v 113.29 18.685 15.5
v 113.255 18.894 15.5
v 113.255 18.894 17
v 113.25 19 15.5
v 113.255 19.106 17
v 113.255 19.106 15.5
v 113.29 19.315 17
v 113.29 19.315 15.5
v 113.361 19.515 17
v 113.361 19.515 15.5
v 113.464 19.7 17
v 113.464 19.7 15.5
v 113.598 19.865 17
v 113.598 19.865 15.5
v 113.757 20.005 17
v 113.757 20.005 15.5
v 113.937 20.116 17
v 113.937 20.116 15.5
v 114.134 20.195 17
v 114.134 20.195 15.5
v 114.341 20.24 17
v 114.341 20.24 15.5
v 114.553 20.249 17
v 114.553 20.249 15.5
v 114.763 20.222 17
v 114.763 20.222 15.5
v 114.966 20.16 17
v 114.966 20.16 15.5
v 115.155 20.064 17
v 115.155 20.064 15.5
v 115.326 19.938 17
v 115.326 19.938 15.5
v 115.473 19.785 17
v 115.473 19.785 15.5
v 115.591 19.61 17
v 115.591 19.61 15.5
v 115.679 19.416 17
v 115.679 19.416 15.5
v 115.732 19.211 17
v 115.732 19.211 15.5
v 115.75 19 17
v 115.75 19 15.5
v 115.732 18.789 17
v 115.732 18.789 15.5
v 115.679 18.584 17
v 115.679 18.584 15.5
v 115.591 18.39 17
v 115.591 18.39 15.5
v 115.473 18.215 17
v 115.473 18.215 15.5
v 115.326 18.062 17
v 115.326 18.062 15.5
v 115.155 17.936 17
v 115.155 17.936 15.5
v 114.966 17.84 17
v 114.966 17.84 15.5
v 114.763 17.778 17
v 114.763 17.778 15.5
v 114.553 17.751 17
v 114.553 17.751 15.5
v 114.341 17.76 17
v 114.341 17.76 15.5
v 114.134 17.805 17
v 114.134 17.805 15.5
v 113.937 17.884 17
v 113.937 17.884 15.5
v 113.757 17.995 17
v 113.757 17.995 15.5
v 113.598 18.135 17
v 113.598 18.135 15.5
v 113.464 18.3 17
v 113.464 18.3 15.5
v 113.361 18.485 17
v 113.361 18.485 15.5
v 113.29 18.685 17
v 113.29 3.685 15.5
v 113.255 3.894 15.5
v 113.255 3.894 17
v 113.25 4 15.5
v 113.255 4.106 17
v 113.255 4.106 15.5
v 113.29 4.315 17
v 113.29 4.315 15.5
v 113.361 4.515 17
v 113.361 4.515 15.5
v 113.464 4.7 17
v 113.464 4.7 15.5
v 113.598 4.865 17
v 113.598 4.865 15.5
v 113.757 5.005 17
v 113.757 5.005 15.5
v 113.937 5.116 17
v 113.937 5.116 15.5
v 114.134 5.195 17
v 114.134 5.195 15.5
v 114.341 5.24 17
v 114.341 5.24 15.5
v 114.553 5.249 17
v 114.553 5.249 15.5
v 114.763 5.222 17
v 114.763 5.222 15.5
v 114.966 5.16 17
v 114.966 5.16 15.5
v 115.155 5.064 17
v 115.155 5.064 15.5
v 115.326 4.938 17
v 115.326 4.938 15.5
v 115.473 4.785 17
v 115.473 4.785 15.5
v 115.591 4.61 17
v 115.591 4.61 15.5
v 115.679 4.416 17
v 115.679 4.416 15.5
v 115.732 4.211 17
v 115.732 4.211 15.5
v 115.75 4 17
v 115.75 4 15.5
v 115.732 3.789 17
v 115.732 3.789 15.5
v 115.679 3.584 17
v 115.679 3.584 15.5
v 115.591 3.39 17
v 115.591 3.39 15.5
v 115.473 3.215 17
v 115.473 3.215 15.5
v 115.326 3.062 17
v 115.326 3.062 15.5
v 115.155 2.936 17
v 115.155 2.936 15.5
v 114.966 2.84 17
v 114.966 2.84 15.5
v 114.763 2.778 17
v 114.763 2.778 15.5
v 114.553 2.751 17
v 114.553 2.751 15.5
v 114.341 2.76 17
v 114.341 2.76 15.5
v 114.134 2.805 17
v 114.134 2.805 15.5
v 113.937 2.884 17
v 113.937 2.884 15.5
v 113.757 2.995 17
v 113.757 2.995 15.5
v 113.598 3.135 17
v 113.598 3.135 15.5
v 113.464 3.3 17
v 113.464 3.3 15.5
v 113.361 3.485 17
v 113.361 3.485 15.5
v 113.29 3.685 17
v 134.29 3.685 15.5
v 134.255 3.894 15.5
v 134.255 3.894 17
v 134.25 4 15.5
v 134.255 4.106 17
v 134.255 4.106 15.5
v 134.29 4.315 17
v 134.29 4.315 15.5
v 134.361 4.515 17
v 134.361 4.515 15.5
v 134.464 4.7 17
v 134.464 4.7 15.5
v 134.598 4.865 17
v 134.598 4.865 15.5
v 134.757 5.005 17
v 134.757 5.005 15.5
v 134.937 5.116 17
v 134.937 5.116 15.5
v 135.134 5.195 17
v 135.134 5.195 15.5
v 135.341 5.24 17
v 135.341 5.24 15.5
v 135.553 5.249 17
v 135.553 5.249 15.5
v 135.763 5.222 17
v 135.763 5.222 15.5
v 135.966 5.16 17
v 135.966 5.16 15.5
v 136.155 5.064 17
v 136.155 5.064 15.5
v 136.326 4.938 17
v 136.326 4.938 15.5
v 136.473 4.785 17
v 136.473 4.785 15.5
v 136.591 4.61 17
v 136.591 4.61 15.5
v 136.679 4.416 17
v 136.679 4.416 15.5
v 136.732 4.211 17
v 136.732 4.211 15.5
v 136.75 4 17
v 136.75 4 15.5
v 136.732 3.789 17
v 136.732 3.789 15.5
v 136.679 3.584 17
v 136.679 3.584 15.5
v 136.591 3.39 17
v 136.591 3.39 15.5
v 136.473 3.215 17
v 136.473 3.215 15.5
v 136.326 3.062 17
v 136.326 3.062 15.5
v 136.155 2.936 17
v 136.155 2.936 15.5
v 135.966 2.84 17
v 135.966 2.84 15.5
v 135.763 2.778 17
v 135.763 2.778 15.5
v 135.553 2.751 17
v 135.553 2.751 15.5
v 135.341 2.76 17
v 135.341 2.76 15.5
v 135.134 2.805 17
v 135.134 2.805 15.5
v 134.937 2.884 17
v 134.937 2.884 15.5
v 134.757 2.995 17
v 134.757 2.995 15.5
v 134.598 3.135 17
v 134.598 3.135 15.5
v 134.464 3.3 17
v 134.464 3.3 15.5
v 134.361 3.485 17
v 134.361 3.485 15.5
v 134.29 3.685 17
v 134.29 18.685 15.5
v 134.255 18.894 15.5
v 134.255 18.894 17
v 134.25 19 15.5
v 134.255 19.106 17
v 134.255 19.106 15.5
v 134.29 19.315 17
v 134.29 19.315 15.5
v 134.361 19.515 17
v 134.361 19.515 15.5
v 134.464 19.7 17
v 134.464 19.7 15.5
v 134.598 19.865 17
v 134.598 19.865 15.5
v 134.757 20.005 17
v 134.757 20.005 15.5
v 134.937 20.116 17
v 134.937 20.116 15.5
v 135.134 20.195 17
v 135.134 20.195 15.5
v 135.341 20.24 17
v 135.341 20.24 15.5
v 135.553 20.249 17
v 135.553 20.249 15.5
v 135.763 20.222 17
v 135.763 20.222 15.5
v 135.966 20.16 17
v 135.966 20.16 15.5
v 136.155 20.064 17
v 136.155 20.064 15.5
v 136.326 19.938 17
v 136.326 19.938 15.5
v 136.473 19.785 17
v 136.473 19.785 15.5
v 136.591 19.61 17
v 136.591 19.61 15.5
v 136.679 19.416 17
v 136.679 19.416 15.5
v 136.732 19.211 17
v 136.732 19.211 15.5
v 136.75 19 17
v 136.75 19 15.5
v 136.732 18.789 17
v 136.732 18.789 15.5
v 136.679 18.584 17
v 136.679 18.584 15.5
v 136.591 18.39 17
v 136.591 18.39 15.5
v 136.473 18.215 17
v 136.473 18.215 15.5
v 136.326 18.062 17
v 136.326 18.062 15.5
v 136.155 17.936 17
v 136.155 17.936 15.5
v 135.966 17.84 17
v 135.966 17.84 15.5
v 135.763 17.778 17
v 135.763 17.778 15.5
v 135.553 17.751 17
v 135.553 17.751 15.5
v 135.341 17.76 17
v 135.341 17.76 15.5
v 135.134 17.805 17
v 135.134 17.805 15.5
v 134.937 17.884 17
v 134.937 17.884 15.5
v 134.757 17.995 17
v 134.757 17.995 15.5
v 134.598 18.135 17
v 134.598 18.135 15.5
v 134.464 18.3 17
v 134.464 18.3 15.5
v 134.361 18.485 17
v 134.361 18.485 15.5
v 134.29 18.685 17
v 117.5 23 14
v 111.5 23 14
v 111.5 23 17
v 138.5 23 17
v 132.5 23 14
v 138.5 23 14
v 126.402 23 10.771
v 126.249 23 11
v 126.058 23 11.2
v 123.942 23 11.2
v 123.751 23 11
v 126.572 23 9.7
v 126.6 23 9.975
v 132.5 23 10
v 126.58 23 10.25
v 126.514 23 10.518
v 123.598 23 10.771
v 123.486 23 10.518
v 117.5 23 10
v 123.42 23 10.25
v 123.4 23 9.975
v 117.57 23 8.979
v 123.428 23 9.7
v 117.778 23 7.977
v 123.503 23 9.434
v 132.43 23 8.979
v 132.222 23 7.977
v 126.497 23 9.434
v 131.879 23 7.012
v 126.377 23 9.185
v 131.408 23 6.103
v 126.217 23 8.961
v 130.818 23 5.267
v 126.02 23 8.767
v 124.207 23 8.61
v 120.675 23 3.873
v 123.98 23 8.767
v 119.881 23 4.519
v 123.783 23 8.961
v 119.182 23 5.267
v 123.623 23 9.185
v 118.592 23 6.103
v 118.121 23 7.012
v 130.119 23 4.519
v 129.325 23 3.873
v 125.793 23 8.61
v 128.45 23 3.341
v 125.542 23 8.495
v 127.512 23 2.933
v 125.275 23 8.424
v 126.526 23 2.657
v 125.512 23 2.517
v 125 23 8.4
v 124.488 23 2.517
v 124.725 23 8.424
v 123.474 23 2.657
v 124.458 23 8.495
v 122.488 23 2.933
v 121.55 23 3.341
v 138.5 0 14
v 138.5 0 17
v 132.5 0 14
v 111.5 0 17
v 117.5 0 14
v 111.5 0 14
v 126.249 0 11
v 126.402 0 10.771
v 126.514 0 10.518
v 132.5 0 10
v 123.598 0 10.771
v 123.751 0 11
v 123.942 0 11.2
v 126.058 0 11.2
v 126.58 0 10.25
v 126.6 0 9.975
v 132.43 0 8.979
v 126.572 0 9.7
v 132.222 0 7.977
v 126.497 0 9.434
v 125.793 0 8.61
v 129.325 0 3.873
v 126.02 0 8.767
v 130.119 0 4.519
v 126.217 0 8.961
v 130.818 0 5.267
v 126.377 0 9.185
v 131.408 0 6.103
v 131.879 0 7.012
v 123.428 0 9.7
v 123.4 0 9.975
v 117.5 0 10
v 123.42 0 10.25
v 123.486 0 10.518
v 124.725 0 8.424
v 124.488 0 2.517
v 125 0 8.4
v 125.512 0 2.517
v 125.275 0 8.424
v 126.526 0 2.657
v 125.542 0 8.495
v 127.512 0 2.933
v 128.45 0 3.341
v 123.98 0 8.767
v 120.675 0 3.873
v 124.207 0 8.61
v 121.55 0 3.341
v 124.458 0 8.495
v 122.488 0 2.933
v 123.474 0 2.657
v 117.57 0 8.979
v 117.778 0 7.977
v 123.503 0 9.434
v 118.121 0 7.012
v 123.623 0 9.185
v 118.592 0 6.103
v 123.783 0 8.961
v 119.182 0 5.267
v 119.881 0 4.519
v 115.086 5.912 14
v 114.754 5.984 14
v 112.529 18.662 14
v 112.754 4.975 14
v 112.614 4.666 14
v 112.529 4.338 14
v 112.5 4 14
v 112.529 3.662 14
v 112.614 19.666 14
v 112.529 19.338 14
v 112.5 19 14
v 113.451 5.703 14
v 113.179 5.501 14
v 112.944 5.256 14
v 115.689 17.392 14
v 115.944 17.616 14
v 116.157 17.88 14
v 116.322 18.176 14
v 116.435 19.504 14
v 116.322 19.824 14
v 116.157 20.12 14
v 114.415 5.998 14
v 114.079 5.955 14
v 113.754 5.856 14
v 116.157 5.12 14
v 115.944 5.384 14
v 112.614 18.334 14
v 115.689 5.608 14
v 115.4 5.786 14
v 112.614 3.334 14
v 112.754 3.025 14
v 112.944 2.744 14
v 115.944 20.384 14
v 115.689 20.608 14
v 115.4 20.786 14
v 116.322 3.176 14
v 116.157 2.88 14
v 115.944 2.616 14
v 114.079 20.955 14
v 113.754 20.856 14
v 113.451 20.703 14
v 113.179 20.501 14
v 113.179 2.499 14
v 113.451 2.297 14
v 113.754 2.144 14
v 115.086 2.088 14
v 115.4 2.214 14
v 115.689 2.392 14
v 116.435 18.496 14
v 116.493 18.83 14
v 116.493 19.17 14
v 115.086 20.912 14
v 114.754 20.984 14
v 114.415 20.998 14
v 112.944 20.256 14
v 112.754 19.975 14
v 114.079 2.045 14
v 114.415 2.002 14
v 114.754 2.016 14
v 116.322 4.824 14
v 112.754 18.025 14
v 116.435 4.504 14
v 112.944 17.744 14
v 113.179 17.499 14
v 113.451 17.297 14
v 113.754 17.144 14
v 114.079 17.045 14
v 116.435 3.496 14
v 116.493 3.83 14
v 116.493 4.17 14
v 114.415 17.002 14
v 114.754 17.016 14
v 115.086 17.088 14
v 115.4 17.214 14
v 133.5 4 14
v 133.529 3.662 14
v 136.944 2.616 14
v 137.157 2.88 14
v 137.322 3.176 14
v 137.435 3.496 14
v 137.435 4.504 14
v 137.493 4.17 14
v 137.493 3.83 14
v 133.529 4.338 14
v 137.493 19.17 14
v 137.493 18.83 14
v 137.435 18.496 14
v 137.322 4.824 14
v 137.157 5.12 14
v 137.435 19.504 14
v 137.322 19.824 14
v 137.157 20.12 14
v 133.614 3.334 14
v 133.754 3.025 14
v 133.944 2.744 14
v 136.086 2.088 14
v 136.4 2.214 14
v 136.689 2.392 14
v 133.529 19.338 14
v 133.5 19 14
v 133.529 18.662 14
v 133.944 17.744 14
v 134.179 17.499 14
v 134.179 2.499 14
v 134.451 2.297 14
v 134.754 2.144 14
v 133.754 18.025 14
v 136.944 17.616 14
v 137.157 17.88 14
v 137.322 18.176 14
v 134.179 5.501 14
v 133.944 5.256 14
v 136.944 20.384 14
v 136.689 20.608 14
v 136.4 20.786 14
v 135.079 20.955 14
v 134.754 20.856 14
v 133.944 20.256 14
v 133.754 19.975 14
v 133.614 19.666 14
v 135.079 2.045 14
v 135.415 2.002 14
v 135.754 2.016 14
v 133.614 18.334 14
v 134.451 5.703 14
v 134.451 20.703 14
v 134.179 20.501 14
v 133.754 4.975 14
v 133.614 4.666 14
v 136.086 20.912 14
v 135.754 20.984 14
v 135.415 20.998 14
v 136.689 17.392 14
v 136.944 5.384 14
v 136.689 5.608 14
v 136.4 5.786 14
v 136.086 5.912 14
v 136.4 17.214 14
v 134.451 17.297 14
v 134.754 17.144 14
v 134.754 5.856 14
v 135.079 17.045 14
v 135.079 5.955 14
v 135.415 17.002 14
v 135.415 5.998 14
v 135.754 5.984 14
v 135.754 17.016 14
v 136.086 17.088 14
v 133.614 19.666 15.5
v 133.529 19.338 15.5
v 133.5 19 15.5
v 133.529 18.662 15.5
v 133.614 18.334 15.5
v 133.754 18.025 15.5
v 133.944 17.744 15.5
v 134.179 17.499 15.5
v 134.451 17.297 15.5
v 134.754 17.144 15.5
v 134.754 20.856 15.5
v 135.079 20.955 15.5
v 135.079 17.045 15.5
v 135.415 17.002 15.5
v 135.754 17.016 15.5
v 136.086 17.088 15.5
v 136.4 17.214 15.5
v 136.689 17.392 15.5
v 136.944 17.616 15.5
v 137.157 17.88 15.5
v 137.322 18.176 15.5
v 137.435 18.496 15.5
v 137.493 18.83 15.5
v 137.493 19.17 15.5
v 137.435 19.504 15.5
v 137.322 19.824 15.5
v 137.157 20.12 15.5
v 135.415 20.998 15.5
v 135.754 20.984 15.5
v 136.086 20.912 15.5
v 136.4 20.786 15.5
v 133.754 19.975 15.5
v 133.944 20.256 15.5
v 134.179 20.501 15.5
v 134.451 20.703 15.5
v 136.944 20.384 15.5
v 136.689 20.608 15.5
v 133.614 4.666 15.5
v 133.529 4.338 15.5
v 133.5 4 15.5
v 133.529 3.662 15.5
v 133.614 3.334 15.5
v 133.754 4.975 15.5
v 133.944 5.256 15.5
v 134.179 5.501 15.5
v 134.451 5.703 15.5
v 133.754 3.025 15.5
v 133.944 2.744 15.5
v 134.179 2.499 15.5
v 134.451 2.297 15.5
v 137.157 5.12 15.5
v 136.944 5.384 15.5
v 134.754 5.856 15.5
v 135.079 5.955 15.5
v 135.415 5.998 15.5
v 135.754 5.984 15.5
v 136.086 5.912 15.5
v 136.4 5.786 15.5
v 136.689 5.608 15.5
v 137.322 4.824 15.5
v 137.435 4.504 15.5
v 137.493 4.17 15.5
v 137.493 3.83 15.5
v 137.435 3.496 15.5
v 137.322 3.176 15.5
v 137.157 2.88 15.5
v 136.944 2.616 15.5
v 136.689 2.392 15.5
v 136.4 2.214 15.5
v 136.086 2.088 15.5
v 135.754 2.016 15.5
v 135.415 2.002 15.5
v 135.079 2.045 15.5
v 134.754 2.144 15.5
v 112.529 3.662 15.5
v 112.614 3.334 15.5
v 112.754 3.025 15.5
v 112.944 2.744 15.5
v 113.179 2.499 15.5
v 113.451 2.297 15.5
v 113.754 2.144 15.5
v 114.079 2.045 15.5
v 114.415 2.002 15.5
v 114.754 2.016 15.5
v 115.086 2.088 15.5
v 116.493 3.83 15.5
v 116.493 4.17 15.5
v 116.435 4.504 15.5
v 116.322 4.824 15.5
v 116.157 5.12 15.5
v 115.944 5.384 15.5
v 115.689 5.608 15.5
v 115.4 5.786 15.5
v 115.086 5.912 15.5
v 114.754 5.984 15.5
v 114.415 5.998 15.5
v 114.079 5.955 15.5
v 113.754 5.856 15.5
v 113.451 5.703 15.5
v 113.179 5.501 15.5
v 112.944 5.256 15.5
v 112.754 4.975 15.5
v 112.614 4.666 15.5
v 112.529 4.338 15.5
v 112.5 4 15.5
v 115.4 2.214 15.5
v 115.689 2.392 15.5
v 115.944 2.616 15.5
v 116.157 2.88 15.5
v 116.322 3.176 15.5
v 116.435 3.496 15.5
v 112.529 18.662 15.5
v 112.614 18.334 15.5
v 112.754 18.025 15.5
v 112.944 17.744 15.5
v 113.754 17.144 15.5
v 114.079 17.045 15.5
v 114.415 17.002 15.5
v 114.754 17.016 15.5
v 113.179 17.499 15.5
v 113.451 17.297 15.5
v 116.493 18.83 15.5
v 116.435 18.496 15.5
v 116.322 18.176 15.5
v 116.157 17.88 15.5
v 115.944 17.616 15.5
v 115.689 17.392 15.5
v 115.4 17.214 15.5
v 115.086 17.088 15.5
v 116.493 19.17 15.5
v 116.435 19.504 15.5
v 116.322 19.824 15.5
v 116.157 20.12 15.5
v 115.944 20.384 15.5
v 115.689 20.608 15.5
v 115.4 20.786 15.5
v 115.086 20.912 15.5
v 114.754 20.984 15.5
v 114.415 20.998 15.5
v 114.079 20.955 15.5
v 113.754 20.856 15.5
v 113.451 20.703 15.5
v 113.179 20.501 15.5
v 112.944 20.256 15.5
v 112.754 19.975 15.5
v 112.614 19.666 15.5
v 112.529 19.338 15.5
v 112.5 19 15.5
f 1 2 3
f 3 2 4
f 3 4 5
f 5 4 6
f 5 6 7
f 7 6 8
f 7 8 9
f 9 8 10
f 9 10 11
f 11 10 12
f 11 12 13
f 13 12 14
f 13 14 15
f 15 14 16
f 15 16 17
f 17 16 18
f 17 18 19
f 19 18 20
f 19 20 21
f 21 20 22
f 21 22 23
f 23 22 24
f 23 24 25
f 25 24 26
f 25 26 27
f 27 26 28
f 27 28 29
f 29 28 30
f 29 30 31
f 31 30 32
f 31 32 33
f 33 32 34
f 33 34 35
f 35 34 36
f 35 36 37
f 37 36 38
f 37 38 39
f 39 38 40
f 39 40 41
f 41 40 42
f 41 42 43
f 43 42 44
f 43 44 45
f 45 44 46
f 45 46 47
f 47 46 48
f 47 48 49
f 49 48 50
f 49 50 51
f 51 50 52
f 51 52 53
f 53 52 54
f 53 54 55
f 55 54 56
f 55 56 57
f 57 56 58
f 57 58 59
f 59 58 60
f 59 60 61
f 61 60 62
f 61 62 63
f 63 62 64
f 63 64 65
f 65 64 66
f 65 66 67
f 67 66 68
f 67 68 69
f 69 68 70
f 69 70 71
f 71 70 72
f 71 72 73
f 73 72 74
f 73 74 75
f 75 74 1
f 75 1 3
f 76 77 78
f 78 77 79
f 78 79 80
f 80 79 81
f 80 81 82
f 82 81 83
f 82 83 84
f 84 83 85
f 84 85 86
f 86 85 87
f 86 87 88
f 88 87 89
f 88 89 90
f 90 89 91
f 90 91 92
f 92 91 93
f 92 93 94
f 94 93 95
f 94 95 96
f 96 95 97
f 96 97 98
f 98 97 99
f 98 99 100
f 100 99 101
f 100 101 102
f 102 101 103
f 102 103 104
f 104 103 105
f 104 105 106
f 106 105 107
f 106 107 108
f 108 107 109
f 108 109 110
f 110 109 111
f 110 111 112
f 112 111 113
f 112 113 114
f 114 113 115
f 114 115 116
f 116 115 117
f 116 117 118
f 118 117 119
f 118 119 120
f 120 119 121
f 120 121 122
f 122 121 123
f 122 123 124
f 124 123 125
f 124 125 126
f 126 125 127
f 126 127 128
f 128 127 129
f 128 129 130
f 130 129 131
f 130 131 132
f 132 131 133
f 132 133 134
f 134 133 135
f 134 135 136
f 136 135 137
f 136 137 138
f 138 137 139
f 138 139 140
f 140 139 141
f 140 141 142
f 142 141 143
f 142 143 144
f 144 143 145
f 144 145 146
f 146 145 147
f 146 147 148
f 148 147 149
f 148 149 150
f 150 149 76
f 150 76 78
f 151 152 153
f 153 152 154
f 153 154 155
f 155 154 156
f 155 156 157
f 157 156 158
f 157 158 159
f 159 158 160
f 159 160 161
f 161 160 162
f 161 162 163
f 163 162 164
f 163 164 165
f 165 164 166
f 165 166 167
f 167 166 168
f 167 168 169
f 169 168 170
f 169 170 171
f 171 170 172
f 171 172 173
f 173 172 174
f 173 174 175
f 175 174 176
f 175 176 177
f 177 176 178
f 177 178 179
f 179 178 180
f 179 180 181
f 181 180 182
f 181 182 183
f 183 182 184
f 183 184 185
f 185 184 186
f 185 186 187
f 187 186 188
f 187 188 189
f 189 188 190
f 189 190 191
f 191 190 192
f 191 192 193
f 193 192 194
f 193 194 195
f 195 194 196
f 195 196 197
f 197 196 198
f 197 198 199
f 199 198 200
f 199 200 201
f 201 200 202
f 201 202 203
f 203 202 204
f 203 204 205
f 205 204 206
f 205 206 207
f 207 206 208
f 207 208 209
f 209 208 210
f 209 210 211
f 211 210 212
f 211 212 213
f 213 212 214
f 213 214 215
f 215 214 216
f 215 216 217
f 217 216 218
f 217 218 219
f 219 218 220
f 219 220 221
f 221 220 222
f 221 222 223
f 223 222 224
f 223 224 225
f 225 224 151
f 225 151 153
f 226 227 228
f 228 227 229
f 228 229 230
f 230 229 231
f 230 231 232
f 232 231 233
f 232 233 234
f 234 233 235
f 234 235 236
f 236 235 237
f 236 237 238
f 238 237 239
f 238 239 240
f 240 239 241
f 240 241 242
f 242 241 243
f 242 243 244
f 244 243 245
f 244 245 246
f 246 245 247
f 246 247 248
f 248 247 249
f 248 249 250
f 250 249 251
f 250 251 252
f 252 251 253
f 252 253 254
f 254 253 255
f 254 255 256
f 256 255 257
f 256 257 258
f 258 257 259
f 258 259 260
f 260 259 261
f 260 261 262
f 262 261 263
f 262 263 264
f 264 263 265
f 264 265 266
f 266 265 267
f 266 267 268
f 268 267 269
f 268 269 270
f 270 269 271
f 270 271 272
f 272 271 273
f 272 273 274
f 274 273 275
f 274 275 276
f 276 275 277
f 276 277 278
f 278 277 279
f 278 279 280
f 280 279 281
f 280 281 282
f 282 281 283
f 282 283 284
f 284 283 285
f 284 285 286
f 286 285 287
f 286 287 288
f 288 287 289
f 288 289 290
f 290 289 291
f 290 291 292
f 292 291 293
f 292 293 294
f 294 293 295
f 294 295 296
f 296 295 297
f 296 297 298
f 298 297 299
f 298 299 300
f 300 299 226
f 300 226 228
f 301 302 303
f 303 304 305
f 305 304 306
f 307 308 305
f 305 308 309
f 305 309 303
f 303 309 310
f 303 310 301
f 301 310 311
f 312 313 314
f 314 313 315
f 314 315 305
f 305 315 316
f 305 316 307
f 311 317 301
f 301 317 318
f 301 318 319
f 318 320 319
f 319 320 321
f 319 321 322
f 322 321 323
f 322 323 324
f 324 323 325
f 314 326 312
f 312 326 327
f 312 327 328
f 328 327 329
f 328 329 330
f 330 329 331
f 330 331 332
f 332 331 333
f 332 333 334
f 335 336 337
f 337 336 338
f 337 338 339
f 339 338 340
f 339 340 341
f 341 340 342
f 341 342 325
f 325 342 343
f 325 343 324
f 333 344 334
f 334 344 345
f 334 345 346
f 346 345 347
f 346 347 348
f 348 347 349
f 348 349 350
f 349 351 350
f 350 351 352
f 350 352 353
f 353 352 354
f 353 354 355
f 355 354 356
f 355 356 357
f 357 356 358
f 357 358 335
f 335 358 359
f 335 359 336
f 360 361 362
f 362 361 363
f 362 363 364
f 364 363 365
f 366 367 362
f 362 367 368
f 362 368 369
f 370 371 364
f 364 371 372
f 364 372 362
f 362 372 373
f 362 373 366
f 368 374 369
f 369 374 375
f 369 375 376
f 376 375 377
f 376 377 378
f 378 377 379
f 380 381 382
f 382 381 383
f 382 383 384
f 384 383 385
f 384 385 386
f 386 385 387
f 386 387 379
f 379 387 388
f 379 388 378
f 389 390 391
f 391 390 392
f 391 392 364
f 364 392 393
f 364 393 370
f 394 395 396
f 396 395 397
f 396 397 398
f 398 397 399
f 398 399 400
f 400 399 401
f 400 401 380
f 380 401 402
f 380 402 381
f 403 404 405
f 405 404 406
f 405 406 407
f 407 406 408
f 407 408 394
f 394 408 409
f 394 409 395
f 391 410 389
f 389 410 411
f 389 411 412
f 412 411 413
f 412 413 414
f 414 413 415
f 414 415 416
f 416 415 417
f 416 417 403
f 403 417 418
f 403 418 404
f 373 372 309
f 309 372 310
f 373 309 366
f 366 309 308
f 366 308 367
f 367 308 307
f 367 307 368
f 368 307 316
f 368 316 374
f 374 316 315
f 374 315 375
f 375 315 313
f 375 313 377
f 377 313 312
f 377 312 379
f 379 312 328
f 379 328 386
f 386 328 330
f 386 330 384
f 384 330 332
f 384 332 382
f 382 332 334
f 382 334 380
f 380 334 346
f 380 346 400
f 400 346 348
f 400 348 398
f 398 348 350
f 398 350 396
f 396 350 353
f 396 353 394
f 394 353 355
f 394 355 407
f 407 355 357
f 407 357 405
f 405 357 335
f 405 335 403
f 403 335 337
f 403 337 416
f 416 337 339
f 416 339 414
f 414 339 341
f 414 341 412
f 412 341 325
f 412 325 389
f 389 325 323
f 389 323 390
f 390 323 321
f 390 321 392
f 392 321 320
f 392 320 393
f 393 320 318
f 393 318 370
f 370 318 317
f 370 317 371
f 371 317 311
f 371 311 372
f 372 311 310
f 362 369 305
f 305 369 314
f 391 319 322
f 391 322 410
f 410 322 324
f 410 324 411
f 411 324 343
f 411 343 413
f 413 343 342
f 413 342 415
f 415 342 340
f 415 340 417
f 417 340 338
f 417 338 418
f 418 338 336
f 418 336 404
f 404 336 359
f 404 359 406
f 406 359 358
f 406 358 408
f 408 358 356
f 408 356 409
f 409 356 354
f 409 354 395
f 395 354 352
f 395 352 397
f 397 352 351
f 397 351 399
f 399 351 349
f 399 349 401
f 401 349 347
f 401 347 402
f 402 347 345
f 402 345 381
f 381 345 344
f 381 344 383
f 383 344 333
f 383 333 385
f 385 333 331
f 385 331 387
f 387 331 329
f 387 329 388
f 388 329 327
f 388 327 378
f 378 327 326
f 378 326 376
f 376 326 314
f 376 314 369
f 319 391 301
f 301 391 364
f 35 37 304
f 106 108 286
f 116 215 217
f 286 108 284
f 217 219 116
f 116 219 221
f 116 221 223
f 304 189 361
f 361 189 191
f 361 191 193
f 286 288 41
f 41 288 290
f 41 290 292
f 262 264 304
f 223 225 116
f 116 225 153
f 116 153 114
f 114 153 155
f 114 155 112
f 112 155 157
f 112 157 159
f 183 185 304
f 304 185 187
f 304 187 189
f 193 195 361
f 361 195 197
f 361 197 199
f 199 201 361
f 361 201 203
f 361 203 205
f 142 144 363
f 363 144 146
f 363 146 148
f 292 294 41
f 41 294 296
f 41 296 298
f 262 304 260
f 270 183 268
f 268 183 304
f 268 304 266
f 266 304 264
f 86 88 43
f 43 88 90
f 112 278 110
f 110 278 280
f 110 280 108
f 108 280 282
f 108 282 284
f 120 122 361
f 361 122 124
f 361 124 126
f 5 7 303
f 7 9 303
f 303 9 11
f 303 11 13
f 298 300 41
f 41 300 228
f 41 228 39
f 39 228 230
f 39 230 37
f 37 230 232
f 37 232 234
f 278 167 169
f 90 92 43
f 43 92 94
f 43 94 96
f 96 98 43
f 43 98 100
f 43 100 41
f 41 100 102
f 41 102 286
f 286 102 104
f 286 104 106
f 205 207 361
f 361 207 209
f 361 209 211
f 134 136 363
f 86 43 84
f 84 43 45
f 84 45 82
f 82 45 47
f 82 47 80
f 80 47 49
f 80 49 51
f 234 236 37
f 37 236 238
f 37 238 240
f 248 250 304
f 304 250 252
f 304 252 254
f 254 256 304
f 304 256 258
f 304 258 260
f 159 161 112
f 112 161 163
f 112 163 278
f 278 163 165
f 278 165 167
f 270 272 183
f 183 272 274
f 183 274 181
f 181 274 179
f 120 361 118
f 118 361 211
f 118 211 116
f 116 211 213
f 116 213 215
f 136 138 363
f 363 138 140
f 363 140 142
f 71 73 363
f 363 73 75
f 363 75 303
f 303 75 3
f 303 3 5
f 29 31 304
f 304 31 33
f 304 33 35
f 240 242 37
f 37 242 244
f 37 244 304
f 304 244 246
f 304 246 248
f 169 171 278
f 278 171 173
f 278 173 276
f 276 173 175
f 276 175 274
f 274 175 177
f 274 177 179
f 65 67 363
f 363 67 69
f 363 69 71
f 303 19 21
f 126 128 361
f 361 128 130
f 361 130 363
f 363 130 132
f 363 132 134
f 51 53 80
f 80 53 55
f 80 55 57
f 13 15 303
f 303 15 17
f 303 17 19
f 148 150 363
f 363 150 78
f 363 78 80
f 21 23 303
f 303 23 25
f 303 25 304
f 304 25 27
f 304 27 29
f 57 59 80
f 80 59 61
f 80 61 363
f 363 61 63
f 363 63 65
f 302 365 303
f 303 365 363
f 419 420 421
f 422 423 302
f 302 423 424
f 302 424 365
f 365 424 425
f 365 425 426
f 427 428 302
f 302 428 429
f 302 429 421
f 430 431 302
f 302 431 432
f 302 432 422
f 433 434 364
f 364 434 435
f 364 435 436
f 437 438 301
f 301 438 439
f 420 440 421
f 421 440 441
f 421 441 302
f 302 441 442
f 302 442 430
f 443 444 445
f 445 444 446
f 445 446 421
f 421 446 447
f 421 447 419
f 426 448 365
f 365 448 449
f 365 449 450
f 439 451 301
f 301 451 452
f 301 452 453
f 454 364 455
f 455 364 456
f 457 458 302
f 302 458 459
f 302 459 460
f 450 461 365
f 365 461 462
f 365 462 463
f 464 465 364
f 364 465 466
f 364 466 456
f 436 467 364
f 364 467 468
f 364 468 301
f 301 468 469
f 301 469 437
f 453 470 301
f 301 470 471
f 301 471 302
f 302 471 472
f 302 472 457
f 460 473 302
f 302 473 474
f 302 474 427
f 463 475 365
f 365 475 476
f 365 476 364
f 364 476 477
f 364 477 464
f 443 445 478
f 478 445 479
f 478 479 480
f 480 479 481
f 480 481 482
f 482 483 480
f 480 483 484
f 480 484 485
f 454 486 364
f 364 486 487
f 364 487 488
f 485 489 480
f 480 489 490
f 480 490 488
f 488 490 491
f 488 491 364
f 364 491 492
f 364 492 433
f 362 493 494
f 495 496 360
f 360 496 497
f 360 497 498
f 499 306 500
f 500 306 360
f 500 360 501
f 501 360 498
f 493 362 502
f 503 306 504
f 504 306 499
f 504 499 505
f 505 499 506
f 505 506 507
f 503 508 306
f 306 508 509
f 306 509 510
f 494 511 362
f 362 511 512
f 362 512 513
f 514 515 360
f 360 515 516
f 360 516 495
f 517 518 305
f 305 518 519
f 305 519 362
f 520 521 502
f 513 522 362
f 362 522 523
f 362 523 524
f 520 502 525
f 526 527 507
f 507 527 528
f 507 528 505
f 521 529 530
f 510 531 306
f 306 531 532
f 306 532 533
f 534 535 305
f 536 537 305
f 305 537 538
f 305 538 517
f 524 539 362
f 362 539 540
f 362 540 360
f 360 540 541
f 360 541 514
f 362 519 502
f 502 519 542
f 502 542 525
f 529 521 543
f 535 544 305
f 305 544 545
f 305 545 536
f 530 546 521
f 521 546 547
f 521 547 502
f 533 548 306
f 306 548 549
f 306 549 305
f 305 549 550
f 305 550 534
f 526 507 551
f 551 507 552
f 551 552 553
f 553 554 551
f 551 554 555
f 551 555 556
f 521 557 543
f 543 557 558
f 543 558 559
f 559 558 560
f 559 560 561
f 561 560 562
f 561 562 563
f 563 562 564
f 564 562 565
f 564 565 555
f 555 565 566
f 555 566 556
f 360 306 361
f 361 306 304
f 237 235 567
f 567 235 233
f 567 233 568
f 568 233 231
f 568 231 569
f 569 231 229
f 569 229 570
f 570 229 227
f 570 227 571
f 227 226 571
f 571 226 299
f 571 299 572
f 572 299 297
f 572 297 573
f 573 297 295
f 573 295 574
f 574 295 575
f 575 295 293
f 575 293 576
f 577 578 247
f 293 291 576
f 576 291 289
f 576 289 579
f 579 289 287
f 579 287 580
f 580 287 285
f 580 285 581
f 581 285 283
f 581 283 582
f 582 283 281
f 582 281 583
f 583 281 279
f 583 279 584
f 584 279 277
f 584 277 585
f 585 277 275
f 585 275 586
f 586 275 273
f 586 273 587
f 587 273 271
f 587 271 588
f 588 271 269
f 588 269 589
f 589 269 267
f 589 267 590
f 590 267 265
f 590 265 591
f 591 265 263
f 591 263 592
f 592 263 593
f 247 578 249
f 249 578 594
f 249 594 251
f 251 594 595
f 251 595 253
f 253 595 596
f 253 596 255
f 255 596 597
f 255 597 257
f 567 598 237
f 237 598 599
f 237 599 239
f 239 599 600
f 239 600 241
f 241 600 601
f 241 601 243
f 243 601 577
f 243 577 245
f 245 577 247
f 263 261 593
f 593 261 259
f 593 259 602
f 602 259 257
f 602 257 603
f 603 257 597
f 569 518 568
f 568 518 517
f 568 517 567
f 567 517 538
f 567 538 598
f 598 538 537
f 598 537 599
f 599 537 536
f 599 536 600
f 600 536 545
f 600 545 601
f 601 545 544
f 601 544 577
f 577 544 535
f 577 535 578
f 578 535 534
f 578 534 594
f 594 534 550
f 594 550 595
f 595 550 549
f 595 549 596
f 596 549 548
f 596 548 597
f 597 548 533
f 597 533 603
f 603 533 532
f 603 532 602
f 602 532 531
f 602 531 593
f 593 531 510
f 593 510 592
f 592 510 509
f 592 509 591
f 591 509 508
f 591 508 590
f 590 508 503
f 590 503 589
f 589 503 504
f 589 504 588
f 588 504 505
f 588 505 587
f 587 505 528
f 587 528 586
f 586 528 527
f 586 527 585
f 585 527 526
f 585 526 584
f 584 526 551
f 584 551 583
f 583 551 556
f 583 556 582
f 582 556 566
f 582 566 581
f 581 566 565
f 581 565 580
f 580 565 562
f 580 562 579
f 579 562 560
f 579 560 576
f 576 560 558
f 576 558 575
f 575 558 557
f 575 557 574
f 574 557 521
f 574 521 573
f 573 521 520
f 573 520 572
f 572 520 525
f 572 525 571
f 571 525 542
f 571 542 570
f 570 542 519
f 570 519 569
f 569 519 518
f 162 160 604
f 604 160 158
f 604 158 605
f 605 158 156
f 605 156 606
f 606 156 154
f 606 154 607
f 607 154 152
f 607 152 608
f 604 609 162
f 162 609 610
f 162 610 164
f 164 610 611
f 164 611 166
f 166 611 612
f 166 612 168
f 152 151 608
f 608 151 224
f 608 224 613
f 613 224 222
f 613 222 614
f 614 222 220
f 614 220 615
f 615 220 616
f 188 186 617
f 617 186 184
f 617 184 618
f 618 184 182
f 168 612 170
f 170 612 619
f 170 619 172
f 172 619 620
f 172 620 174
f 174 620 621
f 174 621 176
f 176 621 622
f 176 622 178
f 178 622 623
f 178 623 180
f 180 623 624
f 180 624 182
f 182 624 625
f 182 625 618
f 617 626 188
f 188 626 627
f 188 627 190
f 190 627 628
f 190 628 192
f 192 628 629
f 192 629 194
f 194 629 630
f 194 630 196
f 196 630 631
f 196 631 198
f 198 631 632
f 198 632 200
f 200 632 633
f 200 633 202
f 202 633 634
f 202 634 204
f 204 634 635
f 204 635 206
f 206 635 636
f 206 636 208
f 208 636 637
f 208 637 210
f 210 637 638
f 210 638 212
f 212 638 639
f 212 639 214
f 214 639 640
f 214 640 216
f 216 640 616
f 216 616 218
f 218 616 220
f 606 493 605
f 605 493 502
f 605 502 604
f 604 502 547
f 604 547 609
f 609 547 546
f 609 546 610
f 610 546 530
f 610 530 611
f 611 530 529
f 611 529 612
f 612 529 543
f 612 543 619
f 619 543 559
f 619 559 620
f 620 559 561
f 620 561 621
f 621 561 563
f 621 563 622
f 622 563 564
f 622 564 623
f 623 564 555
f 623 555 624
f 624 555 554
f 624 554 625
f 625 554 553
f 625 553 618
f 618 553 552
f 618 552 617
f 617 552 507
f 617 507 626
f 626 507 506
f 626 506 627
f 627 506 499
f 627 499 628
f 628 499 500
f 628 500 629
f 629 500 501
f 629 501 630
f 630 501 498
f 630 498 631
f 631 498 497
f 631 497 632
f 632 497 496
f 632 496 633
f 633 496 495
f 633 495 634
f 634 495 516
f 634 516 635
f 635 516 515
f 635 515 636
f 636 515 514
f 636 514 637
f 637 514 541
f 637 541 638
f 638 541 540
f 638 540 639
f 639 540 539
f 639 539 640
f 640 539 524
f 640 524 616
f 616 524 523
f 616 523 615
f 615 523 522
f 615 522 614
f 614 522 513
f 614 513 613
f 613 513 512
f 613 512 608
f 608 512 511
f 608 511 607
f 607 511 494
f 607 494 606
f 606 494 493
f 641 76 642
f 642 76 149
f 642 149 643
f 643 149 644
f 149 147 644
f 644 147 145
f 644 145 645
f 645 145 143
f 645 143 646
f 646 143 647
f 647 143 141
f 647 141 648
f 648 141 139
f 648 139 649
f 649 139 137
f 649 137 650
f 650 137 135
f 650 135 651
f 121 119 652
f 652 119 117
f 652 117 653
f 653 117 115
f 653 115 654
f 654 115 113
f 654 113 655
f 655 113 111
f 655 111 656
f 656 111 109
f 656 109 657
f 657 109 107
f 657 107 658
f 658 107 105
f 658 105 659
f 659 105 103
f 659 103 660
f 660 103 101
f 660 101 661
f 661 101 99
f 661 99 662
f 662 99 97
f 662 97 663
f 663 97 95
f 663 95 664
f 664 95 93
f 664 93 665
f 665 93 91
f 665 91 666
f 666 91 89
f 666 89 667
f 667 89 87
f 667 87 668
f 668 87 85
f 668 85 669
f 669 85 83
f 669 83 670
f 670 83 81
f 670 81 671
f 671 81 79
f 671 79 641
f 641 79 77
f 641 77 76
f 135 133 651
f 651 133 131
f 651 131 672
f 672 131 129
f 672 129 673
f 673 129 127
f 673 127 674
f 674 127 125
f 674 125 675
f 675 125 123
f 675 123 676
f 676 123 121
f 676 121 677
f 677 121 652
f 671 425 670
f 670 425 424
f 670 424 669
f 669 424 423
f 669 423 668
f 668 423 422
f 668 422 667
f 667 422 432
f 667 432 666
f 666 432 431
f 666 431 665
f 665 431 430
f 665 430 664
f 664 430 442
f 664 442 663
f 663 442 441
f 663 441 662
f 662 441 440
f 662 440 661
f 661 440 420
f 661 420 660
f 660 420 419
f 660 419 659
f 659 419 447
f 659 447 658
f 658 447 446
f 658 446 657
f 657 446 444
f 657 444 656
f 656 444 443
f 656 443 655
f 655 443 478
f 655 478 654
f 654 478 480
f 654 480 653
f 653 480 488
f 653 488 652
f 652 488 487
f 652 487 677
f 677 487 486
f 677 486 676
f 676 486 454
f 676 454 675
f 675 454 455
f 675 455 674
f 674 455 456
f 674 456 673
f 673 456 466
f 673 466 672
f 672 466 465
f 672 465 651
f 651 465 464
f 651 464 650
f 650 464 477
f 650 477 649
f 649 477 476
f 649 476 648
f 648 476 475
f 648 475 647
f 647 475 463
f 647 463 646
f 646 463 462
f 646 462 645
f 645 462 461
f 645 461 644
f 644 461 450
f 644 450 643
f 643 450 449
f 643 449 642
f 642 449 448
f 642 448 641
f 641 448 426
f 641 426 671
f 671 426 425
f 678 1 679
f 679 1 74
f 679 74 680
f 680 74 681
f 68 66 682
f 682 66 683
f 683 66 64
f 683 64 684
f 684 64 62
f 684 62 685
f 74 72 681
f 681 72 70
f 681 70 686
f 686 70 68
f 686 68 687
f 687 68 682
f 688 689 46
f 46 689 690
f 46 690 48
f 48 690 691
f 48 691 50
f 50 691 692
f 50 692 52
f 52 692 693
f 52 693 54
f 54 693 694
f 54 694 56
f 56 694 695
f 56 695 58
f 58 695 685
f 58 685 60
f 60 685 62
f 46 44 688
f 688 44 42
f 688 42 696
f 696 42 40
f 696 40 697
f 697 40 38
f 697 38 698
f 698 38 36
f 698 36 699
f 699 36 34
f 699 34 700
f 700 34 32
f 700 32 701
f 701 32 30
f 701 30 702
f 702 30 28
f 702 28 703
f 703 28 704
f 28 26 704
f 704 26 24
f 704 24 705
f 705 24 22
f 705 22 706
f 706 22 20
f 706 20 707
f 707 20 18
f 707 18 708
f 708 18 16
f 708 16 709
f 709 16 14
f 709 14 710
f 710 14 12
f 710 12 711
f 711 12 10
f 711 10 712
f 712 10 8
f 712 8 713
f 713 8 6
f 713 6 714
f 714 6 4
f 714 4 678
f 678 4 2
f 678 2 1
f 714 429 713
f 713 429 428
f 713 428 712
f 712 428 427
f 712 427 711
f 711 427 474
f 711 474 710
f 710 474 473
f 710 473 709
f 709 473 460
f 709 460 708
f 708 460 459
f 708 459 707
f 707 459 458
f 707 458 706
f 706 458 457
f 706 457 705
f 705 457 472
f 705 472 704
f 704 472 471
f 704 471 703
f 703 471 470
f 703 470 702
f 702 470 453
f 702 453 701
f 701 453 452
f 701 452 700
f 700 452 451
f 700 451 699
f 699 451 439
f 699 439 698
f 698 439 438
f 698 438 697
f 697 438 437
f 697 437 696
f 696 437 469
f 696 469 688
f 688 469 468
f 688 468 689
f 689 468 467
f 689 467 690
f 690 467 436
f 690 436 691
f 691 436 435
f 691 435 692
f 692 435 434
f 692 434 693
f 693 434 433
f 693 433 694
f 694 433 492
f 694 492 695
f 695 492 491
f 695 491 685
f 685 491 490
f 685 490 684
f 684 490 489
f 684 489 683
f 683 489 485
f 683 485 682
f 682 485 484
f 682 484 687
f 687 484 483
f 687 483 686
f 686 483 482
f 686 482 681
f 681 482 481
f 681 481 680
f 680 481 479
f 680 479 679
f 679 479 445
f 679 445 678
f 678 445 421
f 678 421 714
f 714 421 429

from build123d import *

# Parameters (mm, degrees)
SKETCH_2_W          = 170
SKETCH_2_H          = 20
EXTRUDE_1_DEPTH     = 23
CUT_EXTRUDE_1_DEPTH = 173.710740836
SKETCH_4_W          = 17
SKETCH_4_H          = 13
CUT_EXTRUDE_2_DEPTH = 30
CUT_EXTRUDE_3_DEPTH = 173.710740836
SKETCH_6_W          = 17.5
SKETCH_6_H          = 14.5
CUT_EXTRUDE_4_DEPTH = 173.710740836
SKETCH_7_W          = 27
SKETCH_7_H          = 23
SKETCH_7_R          = 1.25
EXTRUDE_2_DEPTH     = 3
CUT_EXTRUDE_START   = -3
SKETCH_7_3_R        = 2
CUT_EXTRUDE_5_DEPTH = 1.5


with BuildPart() as part:
    # 草图2 → 凸台-拉伸1 (new body)
    with BuildSketch(Plane(origin=(0, 0, 0), x_dir=(1, 0, 0), z_dir=(0, 1, 0))):
        with Locations((85, -10)):
            Rectangle(SKETCH_2_W, SKETCH_2_H)
    extrude(amount=EXTRUDE_1_DEPTH)

    # 草图3 → 切除-拉伸1 (cut, through all)
    with BuildSketch(Plane(origin=(0, 23, 0), x_dir=(1, 0, 0), z_dir=(0, 1, 0))):
        with BuildLine():
            ThreePointArc((161.6, -10), (159.341699476, -8.541699476), (158.941699476, -11.2))
            Line((158.941699476, -11.2), (161.058300524, -11.2))
            ThreePointArc((161.058300524, -11.2), (161.458300524, -10.658300524), (161.6, -10))
        make_face()
        with BuildLine():
            ThreePointArc((126.6, -10), (124.341699476, -8.541699476), (123.941699476, -11.2))
            Line((123.941699476, -11.2), (126.058300524, -11.2))
            ThreePointArc((126.058300524, -11.2), (126.458300524, -10.658300524), (126.6, -10))
        make_face()
    extrude(amount=-CUT_EXTRUDE_1_DEPTH, mode=Mode.SUBTRACT)

    # 草图4 → 切除-拉伸2 (cut)
    with BuildSketch(Plane(origin=(170, 0, 0), x_dir=(0, 0, -1), z_dir=(1, 0, 0))):
        with Locations((-8.5, 11.5)):
            Rectangle(SKETCH_4_W, SKETCH_4_H)
    extrude(amount=-CUT_EXTRUDE_2_DEPTH, mode=Mode.SUBTRACT)

    # 草图5 → 切除-拉伸3 (cut, through all)
    with BuildSketch(Plane(origin=(0, 23, 0), x_dir=(1, 0, 0), z_dir=(0, 1, 0))):
        with BuildLine():
            Line((117.5, -17), (117.5, -10))
            ThreePointArc((117.5, -10), (125, -2.5), (132.5, -10))
            Line((132.5, -10), (132.5, -17))
            Line((132.5, -17), (152.5, -17))
            Line((152.5, -17), (152.5, -10))
            ThreePointArc((152.5, -10), (160, -2.5), (167.5, -10))
            Line((167.5, -10), (167.5, -17))
            Line((167.5, -17), (170, -17))
            Line((170, -17), (170, 0))
            Line((170, 0), (0, 0))
            Line((0, 0), (0, -20))
            Line((0, -20), (102.5, -20))
            Line((102.5, -20), (102.5, -17))
            Line((102.5, -17), (117.5, -17))
        make_face()
    extrude(amount=-CUT_EXTRUDE_3_DEPTH, mode=Mode.SUBTRACT)

    # 草图6 → 切除-拉伸4 (cut, through all)
    with BuildSketch(Plane(origin=(0, 23, 0), x_dir=(1, 0, 0), z_dir=(0, 1, 0))):
        Polygon((152.5, -17), (102.5, -17), (102.5, -20), (170, -20), (170, -17), align=None)
        with Locations((161.25, -9.75)):
            Rectangle(SKETCH_6_W, SKETCH_6_H)
    extrude(amount=-CUT_EXTRUDE_4_DEPTH, mode=Mode.SUBTRACT)

    # 草图7 → 凸台-拉伸2 (add)
    with BuildSketch(Plane.XY.offset(17)):
        with Locations((125, 11.5)):
            Rectangle(SKETCH_7_W, SKETCH_7_H)
        with Locations((114.5, 19)):
            Circle(SKETCH_7_R, mode=Mode.SUBTRACT)
        with Locations((114.5, 4)):
            Circle(SKETCH_7_R, mode=Mode.SUBTRACT)
        with Locations((135.5, 4)):
            Circle(SKETCH_7_R, mode=Mode.SUBTRACT)
        with Locations((135.5, 19)):
            Circle(SKETCH_7_R, mode=Mode.SUBTRACT)
    extrude(amount=-EXTRUDE_2_DEPTH)

    # 草图7<3> → 切除-拉伸5 (cut)
    with BuildSketch(Plane.XY.offset(17).offset(CUT_EXTRUDE_START)):
        with Locations(Location((114.5, 19, 0), (0, 0, 180))):
            Circle(SKETCH_7_3_R)
        with Locations(Location((114.5, 4, 0), (0, 0, 180))):
            Circle(SKETCH_7_3_R)
        with Locations(Location((135.5, 4, 0), (0, 0, 180))):
            Circle(SKETCH_7_3_R)
        with Locations(Location((135.5, 19, 0), (0, 0, 180))):
            Circle(SKETCH_7_3_R)
    extrude(amount=CUT_EXTRUDE_5_DEPTH, mode=Mode.SUBTRACT)


solid = part.part
